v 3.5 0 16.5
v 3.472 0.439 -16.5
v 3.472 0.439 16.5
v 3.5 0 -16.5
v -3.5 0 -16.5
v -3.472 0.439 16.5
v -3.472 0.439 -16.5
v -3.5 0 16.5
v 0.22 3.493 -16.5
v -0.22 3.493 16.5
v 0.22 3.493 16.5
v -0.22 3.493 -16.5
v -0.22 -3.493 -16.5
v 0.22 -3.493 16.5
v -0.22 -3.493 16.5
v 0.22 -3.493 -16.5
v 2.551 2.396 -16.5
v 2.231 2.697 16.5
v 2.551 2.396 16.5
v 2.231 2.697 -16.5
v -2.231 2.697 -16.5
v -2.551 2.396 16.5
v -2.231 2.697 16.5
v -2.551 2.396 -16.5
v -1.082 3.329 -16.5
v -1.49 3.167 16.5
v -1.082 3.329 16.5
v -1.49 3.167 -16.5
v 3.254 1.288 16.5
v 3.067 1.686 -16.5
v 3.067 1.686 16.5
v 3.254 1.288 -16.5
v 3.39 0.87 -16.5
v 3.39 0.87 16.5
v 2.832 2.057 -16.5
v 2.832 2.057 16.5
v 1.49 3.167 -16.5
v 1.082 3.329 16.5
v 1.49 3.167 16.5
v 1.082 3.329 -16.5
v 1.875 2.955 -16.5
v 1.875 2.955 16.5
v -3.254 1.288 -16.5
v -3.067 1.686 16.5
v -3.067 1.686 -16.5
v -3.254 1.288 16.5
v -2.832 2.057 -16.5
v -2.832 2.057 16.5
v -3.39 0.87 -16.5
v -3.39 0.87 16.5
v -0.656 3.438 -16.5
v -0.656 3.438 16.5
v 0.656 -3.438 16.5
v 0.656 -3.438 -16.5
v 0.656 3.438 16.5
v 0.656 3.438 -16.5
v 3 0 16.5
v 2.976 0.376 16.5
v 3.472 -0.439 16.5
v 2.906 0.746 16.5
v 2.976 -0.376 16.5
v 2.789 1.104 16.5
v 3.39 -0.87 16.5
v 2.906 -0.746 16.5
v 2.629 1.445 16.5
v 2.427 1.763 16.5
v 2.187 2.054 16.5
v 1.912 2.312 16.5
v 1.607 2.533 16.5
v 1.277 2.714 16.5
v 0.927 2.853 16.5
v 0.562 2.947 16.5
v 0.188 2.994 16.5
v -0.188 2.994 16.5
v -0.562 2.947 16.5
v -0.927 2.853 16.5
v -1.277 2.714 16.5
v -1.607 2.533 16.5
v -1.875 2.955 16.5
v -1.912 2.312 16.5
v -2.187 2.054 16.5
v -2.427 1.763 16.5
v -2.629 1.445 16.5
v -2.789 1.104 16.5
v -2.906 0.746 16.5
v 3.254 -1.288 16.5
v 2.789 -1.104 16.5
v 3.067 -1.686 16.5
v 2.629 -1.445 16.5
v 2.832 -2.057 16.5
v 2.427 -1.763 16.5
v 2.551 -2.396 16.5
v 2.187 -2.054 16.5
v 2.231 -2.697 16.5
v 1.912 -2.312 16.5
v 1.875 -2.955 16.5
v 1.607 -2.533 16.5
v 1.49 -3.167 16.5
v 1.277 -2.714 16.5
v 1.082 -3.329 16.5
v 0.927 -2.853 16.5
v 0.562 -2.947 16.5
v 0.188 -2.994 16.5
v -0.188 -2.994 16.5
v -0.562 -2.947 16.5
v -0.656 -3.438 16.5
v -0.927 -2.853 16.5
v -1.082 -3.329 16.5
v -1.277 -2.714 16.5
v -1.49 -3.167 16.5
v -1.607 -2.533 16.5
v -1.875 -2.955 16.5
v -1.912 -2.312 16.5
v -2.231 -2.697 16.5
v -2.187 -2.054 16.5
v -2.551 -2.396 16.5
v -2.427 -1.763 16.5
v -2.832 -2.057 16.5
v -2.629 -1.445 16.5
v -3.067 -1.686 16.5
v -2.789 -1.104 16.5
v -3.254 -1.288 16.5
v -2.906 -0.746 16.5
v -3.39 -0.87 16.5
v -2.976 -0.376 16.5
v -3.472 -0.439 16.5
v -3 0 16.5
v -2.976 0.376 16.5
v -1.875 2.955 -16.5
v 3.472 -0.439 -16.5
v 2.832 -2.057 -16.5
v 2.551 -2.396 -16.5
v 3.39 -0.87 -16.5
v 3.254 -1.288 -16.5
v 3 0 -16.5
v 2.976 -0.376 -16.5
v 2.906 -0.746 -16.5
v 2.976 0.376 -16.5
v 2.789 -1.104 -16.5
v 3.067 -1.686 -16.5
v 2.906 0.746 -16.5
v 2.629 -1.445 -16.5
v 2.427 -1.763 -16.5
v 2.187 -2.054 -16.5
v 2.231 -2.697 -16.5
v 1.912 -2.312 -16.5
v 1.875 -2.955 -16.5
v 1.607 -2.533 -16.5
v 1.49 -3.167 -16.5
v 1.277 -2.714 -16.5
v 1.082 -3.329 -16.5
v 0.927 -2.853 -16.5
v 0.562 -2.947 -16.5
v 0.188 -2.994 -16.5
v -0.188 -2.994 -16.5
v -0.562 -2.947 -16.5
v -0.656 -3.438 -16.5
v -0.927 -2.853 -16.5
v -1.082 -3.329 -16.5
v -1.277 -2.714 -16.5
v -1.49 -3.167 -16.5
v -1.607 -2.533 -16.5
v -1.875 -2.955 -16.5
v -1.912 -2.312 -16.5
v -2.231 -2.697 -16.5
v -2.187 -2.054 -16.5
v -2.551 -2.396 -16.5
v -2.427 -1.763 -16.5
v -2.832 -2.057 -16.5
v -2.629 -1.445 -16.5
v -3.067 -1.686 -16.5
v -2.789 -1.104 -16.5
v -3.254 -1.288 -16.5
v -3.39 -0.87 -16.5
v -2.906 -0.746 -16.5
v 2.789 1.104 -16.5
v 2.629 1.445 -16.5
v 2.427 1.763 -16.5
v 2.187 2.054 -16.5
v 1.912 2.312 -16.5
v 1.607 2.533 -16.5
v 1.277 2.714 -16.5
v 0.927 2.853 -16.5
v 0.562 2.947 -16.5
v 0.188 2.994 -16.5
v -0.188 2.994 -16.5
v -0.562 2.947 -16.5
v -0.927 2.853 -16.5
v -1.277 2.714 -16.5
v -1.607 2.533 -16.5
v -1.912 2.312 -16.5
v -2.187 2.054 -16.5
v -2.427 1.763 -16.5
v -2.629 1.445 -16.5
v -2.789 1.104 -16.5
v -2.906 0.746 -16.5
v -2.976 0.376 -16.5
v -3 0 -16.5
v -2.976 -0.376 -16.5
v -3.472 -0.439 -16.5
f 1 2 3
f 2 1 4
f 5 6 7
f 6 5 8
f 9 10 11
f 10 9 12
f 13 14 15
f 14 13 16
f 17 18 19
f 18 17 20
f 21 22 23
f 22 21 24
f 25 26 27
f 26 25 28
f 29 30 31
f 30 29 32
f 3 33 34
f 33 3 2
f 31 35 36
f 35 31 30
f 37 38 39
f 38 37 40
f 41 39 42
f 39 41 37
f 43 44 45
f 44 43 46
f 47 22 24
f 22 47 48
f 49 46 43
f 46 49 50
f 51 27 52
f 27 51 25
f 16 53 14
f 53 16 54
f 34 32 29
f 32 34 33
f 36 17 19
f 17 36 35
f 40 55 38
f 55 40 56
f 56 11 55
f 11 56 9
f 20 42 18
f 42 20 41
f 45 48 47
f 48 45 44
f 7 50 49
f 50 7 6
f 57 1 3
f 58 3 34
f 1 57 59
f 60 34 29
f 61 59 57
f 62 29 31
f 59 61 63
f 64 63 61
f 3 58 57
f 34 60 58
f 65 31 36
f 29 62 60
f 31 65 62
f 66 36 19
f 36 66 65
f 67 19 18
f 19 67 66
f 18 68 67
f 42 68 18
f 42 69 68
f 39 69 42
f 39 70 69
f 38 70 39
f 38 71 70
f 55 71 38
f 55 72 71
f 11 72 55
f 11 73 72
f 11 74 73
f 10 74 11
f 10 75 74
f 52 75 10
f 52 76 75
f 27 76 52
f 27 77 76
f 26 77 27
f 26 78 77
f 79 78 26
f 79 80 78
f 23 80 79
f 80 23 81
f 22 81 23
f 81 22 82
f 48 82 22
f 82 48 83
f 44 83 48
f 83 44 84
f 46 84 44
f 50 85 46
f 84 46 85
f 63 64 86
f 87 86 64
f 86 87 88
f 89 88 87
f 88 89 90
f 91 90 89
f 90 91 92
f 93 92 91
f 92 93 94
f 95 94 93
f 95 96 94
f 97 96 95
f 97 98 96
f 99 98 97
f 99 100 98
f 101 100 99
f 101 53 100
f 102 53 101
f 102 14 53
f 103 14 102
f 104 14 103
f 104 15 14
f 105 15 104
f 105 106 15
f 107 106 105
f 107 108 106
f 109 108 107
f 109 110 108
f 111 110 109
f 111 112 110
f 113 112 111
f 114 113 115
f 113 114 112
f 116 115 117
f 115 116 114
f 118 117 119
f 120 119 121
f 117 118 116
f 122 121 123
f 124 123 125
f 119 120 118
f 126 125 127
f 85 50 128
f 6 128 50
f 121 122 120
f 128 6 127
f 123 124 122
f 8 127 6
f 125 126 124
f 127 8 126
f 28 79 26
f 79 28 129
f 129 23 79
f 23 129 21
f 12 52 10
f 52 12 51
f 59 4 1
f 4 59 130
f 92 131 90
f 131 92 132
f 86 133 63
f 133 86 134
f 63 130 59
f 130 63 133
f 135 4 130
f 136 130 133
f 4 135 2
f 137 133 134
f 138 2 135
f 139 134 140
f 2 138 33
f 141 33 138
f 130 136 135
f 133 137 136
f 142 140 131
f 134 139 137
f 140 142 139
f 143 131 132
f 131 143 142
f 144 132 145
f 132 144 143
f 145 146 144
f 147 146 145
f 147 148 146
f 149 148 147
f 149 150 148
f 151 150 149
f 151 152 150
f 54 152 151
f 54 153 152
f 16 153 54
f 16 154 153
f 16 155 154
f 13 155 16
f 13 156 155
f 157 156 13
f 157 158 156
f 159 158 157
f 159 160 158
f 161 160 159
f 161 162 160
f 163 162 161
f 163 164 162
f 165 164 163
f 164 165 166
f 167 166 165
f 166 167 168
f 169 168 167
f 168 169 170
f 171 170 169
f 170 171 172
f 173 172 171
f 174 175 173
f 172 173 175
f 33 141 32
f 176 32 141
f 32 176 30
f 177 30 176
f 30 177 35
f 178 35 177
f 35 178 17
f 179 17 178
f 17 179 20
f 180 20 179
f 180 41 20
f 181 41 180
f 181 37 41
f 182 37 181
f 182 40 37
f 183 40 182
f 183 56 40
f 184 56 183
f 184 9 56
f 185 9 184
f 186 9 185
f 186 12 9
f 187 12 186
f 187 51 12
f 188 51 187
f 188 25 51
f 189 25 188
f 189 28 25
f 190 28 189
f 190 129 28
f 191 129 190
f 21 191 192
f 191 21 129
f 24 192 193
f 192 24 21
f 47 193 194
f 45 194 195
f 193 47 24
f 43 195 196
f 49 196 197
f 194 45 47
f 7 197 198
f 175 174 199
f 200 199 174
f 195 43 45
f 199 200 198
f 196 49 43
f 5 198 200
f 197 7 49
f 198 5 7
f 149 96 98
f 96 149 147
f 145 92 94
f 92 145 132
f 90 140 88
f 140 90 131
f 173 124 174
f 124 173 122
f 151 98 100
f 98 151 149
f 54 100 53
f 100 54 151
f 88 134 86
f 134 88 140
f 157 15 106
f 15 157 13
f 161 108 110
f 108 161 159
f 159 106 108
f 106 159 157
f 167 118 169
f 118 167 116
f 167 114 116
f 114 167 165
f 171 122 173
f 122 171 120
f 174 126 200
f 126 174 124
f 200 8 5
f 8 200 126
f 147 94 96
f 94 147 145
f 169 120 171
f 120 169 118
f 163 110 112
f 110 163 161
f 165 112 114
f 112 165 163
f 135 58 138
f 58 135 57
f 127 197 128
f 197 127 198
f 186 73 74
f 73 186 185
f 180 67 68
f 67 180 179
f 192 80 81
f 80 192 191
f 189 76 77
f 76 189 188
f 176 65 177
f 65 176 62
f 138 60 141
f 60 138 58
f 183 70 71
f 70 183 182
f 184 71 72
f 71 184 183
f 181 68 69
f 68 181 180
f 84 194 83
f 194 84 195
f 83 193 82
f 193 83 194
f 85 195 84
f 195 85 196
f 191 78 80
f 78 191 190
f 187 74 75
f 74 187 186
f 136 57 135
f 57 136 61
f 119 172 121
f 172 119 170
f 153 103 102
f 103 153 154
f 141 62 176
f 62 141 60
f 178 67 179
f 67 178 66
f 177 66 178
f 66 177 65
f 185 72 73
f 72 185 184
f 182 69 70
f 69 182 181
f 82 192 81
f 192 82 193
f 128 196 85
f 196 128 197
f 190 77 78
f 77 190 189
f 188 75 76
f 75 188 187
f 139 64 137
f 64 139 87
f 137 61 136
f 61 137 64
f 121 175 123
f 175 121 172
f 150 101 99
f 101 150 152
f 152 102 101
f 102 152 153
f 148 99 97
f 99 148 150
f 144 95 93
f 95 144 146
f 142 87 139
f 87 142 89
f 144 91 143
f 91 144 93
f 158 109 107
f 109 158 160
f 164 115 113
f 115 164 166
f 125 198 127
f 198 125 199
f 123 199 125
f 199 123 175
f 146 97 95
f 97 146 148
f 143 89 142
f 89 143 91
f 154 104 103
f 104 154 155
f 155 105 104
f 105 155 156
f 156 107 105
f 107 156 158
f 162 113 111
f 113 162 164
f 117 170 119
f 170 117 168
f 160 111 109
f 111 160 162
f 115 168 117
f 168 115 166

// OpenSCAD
$fn = 50;


difference() {
	union() {
		translate(v = [0, 0, -16.5000000000]) {
			cylinder(h = 33, r = 3.5000000000);
		}
	}
	union() {
		translate(v = [0, 0, -100.0000000000]) {
			cylinder(h = 200, r = 3);
		}
	}
}
